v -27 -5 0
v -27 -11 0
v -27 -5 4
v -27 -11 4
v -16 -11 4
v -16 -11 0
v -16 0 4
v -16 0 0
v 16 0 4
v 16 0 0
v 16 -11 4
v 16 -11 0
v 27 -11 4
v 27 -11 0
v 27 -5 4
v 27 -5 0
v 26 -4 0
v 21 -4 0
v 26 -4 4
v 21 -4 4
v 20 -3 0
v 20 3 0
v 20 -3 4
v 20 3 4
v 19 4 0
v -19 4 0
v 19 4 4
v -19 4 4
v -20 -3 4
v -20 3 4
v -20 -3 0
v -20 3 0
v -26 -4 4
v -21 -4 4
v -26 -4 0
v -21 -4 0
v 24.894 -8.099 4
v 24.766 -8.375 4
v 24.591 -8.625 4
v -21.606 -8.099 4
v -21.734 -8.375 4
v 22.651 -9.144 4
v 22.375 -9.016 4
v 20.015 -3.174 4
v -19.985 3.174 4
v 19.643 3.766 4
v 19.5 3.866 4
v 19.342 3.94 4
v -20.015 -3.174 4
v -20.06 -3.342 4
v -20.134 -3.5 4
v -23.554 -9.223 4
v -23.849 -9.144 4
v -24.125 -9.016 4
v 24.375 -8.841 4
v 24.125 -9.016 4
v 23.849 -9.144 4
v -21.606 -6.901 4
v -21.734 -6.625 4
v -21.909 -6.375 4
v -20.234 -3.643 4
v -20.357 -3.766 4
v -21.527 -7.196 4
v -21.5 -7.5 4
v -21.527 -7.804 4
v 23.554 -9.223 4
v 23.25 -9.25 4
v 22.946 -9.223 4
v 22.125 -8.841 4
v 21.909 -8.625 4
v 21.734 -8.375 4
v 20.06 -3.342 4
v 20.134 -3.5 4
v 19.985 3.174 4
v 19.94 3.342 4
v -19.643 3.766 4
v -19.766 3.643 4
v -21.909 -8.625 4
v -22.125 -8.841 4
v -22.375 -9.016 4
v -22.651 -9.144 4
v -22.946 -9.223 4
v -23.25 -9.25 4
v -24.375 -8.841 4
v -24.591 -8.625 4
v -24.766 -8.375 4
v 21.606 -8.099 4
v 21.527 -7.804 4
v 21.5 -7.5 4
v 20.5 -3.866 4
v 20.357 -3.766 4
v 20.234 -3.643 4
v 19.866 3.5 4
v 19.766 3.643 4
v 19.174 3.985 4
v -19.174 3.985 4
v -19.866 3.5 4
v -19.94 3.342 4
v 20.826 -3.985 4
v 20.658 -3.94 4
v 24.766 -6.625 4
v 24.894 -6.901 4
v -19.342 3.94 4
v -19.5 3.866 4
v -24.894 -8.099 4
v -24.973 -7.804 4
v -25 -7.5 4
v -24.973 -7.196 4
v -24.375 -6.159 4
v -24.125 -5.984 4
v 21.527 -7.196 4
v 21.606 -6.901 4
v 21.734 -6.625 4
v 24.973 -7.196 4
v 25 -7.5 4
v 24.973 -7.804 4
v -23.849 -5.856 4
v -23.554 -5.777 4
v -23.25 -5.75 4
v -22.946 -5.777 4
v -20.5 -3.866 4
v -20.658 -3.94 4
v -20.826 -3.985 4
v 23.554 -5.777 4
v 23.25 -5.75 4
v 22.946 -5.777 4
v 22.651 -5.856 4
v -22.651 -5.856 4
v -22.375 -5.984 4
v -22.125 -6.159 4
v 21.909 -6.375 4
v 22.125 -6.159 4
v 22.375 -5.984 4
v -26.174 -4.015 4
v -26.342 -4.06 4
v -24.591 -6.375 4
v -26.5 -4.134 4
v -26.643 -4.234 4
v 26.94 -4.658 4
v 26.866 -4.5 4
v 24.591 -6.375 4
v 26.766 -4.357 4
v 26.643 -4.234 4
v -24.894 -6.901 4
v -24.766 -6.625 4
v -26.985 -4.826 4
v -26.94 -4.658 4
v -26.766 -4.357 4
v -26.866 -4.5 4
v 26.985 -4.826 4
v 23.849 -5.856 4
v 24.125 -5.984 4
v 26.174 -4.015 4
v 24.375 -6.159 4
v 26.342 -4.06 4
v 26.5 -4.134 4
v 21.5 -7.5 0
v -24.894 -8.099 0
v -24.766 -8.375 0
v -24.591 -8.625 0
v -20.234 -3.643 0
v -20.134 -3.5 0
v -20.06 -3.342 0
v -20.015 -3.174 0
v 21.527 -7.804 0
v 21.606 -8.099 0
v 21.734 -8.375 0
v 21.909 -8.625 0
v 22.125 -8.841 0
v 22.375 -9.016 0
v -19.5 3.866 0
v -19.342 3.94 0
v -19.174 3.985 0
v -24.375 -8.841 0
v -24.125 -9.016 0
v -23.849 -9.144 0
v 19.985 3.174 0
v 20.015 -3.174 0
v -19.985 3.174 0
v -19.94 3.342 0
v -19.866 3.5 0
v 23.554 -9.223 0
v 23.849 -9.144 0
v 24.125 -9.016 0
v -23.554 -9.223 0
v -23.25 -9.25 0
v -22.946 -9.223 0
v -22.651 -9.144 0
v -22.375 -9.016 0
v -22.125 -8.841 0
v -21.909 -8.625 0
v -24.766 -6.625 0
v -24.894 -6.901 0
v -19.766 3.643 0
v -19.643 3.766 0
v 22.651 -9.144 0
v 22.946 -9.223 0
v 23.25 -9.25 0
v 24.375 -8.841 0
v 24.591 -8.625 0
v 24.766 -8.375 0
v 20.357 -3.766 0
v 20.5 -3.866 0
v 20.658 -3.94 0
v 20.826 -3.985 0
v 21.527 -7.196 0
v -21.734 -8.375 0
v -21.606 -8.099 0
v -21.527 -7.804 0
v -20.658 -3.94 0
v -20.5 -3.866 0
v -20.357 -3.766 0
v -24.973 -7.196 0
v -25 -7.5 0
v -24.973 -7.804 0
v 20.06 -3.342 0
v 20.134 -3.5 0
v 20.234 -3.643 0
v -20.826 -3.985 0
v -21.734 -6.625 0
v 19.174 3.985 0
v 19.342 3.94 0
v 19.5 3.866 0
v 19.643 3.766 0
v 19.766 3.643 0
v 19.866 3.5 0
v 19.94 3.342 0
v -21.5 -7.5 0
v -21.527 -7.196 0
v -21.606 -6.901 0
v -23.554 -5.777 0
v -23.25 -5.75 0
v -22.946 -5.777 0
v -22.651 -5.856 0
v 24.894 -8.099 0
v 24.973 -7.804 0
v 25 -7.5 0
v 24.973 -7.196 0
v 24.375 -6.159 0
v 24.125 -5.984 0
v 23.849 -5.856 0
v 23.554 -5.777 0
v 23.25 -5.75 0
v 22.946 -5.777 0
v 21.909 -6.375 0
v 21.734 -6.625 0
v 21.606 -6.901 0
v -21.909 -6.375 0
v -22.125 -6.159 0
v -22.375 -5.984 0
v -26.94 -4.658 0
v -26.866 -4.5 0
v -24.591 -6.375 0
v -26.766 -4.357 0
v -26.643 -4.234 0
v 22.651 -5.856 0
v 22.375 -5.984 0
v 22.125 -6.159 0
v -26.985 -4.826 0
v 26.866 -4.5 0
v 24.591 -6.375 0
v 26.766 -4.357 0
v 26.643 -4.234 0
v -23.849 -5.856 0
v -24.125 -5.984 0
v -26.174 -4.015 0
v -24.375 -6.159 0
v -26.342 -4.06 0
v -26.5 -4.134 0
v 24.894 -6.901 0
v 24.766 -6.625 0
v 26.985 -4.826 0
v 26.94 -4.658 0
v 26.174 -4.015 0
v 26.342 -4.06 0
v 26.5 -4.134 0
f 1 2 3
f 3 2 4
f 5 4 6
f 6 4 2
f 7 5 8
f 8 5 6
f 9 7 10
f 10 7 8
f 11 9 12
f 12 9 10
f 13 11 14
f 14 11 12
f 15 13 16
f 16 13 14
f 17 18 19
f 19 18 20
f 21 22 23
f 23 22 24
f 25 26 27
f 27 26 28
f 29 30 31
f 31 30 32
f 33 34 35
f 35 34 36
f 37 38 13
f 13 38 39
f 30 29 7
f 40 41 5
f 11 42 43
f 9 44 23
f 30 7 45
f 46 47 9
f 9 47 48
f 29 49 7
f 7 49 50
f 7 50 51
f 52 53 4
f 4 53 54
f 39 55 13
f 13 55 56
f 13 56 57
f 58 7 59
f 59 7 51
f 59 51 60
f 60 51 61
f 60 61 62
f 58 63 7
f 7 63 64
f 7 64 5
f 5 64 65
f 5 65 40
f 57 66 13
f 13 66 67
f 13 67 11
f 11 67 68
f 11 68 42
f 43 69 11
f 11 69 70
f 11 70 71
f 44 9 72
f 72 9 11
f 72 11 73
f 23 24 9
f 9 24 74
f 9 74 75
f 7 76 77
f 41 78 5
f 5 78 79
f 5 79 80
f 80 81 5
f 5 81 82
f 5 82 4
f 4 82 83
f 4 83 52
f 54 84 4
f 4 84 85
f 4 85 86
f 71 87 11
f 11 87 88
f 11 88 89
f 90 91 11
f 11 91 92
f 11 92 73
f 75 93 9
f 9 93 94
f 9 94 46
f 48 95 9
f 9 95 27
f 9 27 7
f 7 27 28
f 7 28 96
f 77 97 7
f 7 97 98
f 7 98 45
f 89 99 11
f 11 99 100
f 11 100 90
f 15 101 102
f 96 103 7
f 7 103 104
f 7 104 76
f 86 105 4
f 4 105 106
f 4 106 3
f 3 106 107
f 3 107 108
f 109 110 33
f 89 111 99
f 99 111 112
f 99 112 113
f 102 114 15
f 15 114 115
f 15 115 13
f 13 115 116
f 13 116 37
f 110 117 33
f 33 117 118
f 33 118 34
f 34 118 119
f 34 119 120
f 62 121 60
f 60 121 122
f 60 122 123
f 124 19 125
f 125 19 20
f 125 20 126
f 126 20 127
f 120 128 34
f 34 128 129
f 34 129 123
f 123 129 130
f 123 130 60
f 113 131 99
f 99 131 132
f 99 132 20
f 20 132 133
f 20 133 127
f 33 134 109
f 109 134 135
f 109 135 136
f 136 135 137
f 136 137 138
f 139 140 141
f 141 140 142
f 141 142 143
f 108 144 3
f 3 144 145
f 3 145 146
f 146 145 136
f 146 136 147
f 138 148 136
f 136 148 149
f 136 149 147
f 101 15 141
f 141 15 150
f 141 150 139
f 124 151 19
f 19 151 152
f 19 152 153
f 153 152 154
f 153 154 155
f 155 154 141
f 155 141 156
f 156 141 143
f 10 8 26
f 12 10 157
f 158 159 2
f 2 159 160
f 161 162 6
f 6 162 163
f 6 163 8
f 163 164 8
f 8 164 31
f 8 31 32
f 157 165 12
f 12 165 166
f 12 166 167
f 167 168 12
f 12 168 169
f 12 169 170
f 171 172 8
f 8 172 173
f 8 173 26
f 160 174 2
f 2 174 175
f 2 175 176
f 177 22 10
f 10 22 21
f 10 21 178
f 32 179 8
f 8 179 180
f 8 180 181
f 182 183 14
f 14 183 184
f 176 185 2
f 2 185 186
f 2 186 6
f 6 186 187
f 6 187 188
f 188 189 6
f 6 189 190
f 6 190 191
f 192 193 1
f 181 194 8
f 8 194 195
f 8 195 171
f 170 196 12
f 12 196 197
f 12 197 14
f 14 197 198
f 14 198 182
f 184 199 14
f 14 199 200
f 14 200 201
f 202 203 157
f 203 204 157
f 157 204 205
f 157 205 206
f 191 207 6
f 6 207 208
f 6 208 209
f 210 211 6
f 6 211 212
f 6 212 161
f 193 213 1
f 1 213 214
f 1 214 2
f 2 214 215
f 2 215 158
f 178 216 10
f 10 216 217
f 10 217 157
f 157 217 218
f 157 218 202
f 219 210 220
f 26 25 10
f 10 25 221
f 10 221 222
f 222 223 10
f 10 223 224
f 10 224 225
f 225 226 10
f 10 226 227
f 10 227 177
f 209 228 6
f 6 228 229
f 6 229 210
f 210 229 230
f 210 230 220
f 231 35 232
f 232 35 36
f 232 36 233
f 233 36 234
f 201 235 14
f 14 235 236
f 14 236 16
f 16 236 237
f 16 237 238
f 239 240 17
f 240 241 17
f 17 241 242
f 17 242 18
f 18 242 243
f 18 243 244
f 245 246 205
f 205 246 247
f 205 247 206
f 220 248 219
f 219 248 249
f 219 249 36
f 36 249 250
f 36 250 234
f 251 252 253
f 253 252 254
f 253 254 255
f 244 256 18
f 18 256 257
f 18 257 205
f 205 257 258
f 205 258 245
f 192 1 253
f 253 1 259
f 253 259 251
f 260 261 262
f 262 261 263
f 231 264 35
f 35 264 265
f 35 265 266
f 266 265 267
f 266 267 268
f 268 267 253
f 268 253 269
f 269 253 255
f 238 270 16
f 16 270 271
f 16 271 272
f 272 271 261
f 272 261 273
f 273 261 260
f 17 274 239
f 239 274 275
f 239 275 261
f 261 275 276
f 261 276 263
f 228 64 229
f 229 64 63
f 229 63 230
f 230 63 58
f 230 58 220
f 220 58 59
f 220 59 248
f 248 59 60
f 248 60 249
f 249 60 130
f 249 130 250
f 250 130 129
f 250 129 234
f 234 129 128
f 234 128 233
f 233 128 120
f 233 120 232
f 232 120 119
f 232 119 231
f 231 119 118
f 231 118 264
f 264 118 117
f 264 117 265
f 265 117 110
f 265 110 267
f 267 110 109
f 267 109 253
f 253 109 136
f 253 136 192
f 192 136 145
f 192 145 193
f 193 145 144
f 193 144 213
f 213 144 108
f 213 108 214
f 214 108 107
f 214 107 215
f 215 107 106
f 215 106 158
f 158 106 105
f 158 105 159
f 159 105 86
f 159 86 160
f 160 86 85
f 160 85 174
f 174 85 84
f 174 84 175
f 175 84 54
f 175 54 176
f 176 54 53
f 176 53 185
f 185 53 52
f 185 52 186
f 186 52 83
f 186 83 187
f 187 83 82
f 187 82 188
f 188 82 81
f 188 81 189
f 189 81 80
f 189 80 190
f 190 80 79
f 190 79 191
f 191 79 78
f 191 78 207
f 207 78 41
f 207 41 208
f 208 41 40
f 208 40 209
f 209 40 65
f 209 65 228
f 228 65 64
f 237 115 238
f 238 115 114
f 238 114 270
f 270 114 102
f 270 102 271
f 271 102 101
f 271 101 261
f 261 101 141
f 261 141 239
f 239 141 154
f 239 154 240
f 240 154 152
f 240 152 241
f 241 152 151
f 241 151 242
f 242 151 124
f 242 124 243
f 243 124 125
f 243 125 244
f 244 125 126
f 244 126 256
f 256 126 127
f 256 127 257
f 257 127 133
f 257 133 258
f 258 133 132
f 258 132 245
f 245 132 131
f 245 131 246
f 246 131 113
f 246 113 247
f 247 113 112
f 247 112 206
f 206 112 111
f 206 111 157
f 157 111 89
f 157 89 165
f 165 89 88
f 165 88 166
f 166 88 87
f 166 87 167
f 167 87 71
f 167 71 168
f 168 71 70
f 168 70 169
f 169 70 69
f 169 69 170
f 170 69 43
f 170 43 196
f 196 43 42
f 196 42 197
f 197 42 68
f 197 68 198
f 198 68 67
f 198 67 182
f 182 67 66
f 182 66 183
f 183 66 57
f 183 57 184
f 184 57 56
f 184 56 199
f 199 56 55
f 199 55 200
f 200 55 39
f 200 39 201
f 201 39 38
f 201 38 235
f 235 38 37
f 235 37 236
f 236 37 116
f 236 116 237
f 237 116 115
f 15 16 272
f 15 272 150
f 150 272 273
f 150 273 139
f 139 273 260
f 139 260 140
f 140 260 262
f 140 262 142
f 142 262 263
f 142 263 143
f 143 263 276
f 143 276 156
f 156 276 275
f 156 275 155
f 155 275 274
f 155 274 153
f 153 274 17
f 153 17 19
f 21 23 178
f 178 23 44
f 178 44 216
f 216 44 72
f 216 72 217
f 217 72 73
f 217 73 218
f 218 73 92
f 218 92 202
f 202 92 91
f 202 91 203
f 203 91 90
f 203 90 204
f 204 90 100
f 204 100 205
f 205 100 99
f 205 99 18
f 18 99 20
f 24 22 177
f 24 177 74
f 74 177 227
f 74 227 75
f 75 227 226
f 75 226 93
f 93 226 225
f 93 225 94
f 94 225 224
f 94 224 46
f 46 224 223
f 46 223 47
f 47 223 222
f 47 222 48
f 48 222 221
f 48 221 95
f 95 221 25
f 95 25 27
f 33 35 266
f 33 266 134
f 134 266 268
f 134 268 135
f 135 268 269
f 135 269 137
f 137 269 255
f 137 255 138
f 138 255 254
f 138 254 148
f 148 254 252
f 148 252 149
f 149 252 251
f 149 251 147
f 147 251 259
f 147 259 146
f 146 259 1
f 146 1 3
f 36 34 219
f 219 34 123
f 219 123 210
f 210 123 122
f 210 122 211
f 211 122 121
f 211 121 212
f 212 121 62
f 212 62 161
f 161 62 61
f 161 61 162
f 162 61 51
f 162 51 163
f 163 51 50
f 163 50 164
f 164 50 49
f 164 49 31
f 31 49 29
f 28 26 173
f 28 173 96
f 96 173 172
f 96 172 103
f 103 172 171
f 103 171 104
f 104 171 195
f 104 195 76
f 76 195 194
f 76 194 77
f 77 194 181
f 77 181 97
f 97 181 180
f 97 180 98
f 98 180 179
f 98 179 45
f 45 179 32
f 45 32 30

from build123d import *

# Parameters (mm, degrees)
BOSS_EXTRUDE1_DEPTH = 4
SKETCH2_R           = 1.75
CUT_EXTRUDE1_DEPTH  = 4
FILLET1_R           = 1


with BuildPart() as part:
    # Sketch1 → Boss-Extrude1 (new body)
    with BuildSketch(Plane.XY):
        Polygon((-27, -11), (-16, -11), (-16, 0), (16, 0), (16, -11), (27, -11), (27, -4), (20, -4), (20, 4), (-20, 4), (-20, -4), (-27, -4), align=None)
    extrude(amount=BOSS_EXTRUDE1_DEPTH)

    # Sketch2 → Cut-Extrude1 (cut)
    with BuildSketch(Plane.XY.offset(4)):
        with Locations((-23.25, -7.5)):
            Circle(SKETCH2_R)
    cut_extrude1 = extrude(amount=-CUT_EXTRUDE1_DEPTH, mode=Mode.SUBTRACT)

    # Mirror1: Cut-Extrude1 across plane
    add(cut_extrude1.mirror(Plane(origin=(0, 0, 0), x_dir=(0, 0, 1), z_dir=(1, 0, 0))), mode=Mode.SUBTRACT)

    # Fillet1
    fillet1_edges = [part.edges().sort_by_distance(p)[0] for p in [
        (-27, -4, 2),
        (-20, -4, 2),
        (-20, 4, 2),
        (20, 4, 2),
        (20, -4, 2),
        (27, -4, 2),
    ]]
    fillet(fillet1_edges, radius=FILLET1_R)


solid = part.part
